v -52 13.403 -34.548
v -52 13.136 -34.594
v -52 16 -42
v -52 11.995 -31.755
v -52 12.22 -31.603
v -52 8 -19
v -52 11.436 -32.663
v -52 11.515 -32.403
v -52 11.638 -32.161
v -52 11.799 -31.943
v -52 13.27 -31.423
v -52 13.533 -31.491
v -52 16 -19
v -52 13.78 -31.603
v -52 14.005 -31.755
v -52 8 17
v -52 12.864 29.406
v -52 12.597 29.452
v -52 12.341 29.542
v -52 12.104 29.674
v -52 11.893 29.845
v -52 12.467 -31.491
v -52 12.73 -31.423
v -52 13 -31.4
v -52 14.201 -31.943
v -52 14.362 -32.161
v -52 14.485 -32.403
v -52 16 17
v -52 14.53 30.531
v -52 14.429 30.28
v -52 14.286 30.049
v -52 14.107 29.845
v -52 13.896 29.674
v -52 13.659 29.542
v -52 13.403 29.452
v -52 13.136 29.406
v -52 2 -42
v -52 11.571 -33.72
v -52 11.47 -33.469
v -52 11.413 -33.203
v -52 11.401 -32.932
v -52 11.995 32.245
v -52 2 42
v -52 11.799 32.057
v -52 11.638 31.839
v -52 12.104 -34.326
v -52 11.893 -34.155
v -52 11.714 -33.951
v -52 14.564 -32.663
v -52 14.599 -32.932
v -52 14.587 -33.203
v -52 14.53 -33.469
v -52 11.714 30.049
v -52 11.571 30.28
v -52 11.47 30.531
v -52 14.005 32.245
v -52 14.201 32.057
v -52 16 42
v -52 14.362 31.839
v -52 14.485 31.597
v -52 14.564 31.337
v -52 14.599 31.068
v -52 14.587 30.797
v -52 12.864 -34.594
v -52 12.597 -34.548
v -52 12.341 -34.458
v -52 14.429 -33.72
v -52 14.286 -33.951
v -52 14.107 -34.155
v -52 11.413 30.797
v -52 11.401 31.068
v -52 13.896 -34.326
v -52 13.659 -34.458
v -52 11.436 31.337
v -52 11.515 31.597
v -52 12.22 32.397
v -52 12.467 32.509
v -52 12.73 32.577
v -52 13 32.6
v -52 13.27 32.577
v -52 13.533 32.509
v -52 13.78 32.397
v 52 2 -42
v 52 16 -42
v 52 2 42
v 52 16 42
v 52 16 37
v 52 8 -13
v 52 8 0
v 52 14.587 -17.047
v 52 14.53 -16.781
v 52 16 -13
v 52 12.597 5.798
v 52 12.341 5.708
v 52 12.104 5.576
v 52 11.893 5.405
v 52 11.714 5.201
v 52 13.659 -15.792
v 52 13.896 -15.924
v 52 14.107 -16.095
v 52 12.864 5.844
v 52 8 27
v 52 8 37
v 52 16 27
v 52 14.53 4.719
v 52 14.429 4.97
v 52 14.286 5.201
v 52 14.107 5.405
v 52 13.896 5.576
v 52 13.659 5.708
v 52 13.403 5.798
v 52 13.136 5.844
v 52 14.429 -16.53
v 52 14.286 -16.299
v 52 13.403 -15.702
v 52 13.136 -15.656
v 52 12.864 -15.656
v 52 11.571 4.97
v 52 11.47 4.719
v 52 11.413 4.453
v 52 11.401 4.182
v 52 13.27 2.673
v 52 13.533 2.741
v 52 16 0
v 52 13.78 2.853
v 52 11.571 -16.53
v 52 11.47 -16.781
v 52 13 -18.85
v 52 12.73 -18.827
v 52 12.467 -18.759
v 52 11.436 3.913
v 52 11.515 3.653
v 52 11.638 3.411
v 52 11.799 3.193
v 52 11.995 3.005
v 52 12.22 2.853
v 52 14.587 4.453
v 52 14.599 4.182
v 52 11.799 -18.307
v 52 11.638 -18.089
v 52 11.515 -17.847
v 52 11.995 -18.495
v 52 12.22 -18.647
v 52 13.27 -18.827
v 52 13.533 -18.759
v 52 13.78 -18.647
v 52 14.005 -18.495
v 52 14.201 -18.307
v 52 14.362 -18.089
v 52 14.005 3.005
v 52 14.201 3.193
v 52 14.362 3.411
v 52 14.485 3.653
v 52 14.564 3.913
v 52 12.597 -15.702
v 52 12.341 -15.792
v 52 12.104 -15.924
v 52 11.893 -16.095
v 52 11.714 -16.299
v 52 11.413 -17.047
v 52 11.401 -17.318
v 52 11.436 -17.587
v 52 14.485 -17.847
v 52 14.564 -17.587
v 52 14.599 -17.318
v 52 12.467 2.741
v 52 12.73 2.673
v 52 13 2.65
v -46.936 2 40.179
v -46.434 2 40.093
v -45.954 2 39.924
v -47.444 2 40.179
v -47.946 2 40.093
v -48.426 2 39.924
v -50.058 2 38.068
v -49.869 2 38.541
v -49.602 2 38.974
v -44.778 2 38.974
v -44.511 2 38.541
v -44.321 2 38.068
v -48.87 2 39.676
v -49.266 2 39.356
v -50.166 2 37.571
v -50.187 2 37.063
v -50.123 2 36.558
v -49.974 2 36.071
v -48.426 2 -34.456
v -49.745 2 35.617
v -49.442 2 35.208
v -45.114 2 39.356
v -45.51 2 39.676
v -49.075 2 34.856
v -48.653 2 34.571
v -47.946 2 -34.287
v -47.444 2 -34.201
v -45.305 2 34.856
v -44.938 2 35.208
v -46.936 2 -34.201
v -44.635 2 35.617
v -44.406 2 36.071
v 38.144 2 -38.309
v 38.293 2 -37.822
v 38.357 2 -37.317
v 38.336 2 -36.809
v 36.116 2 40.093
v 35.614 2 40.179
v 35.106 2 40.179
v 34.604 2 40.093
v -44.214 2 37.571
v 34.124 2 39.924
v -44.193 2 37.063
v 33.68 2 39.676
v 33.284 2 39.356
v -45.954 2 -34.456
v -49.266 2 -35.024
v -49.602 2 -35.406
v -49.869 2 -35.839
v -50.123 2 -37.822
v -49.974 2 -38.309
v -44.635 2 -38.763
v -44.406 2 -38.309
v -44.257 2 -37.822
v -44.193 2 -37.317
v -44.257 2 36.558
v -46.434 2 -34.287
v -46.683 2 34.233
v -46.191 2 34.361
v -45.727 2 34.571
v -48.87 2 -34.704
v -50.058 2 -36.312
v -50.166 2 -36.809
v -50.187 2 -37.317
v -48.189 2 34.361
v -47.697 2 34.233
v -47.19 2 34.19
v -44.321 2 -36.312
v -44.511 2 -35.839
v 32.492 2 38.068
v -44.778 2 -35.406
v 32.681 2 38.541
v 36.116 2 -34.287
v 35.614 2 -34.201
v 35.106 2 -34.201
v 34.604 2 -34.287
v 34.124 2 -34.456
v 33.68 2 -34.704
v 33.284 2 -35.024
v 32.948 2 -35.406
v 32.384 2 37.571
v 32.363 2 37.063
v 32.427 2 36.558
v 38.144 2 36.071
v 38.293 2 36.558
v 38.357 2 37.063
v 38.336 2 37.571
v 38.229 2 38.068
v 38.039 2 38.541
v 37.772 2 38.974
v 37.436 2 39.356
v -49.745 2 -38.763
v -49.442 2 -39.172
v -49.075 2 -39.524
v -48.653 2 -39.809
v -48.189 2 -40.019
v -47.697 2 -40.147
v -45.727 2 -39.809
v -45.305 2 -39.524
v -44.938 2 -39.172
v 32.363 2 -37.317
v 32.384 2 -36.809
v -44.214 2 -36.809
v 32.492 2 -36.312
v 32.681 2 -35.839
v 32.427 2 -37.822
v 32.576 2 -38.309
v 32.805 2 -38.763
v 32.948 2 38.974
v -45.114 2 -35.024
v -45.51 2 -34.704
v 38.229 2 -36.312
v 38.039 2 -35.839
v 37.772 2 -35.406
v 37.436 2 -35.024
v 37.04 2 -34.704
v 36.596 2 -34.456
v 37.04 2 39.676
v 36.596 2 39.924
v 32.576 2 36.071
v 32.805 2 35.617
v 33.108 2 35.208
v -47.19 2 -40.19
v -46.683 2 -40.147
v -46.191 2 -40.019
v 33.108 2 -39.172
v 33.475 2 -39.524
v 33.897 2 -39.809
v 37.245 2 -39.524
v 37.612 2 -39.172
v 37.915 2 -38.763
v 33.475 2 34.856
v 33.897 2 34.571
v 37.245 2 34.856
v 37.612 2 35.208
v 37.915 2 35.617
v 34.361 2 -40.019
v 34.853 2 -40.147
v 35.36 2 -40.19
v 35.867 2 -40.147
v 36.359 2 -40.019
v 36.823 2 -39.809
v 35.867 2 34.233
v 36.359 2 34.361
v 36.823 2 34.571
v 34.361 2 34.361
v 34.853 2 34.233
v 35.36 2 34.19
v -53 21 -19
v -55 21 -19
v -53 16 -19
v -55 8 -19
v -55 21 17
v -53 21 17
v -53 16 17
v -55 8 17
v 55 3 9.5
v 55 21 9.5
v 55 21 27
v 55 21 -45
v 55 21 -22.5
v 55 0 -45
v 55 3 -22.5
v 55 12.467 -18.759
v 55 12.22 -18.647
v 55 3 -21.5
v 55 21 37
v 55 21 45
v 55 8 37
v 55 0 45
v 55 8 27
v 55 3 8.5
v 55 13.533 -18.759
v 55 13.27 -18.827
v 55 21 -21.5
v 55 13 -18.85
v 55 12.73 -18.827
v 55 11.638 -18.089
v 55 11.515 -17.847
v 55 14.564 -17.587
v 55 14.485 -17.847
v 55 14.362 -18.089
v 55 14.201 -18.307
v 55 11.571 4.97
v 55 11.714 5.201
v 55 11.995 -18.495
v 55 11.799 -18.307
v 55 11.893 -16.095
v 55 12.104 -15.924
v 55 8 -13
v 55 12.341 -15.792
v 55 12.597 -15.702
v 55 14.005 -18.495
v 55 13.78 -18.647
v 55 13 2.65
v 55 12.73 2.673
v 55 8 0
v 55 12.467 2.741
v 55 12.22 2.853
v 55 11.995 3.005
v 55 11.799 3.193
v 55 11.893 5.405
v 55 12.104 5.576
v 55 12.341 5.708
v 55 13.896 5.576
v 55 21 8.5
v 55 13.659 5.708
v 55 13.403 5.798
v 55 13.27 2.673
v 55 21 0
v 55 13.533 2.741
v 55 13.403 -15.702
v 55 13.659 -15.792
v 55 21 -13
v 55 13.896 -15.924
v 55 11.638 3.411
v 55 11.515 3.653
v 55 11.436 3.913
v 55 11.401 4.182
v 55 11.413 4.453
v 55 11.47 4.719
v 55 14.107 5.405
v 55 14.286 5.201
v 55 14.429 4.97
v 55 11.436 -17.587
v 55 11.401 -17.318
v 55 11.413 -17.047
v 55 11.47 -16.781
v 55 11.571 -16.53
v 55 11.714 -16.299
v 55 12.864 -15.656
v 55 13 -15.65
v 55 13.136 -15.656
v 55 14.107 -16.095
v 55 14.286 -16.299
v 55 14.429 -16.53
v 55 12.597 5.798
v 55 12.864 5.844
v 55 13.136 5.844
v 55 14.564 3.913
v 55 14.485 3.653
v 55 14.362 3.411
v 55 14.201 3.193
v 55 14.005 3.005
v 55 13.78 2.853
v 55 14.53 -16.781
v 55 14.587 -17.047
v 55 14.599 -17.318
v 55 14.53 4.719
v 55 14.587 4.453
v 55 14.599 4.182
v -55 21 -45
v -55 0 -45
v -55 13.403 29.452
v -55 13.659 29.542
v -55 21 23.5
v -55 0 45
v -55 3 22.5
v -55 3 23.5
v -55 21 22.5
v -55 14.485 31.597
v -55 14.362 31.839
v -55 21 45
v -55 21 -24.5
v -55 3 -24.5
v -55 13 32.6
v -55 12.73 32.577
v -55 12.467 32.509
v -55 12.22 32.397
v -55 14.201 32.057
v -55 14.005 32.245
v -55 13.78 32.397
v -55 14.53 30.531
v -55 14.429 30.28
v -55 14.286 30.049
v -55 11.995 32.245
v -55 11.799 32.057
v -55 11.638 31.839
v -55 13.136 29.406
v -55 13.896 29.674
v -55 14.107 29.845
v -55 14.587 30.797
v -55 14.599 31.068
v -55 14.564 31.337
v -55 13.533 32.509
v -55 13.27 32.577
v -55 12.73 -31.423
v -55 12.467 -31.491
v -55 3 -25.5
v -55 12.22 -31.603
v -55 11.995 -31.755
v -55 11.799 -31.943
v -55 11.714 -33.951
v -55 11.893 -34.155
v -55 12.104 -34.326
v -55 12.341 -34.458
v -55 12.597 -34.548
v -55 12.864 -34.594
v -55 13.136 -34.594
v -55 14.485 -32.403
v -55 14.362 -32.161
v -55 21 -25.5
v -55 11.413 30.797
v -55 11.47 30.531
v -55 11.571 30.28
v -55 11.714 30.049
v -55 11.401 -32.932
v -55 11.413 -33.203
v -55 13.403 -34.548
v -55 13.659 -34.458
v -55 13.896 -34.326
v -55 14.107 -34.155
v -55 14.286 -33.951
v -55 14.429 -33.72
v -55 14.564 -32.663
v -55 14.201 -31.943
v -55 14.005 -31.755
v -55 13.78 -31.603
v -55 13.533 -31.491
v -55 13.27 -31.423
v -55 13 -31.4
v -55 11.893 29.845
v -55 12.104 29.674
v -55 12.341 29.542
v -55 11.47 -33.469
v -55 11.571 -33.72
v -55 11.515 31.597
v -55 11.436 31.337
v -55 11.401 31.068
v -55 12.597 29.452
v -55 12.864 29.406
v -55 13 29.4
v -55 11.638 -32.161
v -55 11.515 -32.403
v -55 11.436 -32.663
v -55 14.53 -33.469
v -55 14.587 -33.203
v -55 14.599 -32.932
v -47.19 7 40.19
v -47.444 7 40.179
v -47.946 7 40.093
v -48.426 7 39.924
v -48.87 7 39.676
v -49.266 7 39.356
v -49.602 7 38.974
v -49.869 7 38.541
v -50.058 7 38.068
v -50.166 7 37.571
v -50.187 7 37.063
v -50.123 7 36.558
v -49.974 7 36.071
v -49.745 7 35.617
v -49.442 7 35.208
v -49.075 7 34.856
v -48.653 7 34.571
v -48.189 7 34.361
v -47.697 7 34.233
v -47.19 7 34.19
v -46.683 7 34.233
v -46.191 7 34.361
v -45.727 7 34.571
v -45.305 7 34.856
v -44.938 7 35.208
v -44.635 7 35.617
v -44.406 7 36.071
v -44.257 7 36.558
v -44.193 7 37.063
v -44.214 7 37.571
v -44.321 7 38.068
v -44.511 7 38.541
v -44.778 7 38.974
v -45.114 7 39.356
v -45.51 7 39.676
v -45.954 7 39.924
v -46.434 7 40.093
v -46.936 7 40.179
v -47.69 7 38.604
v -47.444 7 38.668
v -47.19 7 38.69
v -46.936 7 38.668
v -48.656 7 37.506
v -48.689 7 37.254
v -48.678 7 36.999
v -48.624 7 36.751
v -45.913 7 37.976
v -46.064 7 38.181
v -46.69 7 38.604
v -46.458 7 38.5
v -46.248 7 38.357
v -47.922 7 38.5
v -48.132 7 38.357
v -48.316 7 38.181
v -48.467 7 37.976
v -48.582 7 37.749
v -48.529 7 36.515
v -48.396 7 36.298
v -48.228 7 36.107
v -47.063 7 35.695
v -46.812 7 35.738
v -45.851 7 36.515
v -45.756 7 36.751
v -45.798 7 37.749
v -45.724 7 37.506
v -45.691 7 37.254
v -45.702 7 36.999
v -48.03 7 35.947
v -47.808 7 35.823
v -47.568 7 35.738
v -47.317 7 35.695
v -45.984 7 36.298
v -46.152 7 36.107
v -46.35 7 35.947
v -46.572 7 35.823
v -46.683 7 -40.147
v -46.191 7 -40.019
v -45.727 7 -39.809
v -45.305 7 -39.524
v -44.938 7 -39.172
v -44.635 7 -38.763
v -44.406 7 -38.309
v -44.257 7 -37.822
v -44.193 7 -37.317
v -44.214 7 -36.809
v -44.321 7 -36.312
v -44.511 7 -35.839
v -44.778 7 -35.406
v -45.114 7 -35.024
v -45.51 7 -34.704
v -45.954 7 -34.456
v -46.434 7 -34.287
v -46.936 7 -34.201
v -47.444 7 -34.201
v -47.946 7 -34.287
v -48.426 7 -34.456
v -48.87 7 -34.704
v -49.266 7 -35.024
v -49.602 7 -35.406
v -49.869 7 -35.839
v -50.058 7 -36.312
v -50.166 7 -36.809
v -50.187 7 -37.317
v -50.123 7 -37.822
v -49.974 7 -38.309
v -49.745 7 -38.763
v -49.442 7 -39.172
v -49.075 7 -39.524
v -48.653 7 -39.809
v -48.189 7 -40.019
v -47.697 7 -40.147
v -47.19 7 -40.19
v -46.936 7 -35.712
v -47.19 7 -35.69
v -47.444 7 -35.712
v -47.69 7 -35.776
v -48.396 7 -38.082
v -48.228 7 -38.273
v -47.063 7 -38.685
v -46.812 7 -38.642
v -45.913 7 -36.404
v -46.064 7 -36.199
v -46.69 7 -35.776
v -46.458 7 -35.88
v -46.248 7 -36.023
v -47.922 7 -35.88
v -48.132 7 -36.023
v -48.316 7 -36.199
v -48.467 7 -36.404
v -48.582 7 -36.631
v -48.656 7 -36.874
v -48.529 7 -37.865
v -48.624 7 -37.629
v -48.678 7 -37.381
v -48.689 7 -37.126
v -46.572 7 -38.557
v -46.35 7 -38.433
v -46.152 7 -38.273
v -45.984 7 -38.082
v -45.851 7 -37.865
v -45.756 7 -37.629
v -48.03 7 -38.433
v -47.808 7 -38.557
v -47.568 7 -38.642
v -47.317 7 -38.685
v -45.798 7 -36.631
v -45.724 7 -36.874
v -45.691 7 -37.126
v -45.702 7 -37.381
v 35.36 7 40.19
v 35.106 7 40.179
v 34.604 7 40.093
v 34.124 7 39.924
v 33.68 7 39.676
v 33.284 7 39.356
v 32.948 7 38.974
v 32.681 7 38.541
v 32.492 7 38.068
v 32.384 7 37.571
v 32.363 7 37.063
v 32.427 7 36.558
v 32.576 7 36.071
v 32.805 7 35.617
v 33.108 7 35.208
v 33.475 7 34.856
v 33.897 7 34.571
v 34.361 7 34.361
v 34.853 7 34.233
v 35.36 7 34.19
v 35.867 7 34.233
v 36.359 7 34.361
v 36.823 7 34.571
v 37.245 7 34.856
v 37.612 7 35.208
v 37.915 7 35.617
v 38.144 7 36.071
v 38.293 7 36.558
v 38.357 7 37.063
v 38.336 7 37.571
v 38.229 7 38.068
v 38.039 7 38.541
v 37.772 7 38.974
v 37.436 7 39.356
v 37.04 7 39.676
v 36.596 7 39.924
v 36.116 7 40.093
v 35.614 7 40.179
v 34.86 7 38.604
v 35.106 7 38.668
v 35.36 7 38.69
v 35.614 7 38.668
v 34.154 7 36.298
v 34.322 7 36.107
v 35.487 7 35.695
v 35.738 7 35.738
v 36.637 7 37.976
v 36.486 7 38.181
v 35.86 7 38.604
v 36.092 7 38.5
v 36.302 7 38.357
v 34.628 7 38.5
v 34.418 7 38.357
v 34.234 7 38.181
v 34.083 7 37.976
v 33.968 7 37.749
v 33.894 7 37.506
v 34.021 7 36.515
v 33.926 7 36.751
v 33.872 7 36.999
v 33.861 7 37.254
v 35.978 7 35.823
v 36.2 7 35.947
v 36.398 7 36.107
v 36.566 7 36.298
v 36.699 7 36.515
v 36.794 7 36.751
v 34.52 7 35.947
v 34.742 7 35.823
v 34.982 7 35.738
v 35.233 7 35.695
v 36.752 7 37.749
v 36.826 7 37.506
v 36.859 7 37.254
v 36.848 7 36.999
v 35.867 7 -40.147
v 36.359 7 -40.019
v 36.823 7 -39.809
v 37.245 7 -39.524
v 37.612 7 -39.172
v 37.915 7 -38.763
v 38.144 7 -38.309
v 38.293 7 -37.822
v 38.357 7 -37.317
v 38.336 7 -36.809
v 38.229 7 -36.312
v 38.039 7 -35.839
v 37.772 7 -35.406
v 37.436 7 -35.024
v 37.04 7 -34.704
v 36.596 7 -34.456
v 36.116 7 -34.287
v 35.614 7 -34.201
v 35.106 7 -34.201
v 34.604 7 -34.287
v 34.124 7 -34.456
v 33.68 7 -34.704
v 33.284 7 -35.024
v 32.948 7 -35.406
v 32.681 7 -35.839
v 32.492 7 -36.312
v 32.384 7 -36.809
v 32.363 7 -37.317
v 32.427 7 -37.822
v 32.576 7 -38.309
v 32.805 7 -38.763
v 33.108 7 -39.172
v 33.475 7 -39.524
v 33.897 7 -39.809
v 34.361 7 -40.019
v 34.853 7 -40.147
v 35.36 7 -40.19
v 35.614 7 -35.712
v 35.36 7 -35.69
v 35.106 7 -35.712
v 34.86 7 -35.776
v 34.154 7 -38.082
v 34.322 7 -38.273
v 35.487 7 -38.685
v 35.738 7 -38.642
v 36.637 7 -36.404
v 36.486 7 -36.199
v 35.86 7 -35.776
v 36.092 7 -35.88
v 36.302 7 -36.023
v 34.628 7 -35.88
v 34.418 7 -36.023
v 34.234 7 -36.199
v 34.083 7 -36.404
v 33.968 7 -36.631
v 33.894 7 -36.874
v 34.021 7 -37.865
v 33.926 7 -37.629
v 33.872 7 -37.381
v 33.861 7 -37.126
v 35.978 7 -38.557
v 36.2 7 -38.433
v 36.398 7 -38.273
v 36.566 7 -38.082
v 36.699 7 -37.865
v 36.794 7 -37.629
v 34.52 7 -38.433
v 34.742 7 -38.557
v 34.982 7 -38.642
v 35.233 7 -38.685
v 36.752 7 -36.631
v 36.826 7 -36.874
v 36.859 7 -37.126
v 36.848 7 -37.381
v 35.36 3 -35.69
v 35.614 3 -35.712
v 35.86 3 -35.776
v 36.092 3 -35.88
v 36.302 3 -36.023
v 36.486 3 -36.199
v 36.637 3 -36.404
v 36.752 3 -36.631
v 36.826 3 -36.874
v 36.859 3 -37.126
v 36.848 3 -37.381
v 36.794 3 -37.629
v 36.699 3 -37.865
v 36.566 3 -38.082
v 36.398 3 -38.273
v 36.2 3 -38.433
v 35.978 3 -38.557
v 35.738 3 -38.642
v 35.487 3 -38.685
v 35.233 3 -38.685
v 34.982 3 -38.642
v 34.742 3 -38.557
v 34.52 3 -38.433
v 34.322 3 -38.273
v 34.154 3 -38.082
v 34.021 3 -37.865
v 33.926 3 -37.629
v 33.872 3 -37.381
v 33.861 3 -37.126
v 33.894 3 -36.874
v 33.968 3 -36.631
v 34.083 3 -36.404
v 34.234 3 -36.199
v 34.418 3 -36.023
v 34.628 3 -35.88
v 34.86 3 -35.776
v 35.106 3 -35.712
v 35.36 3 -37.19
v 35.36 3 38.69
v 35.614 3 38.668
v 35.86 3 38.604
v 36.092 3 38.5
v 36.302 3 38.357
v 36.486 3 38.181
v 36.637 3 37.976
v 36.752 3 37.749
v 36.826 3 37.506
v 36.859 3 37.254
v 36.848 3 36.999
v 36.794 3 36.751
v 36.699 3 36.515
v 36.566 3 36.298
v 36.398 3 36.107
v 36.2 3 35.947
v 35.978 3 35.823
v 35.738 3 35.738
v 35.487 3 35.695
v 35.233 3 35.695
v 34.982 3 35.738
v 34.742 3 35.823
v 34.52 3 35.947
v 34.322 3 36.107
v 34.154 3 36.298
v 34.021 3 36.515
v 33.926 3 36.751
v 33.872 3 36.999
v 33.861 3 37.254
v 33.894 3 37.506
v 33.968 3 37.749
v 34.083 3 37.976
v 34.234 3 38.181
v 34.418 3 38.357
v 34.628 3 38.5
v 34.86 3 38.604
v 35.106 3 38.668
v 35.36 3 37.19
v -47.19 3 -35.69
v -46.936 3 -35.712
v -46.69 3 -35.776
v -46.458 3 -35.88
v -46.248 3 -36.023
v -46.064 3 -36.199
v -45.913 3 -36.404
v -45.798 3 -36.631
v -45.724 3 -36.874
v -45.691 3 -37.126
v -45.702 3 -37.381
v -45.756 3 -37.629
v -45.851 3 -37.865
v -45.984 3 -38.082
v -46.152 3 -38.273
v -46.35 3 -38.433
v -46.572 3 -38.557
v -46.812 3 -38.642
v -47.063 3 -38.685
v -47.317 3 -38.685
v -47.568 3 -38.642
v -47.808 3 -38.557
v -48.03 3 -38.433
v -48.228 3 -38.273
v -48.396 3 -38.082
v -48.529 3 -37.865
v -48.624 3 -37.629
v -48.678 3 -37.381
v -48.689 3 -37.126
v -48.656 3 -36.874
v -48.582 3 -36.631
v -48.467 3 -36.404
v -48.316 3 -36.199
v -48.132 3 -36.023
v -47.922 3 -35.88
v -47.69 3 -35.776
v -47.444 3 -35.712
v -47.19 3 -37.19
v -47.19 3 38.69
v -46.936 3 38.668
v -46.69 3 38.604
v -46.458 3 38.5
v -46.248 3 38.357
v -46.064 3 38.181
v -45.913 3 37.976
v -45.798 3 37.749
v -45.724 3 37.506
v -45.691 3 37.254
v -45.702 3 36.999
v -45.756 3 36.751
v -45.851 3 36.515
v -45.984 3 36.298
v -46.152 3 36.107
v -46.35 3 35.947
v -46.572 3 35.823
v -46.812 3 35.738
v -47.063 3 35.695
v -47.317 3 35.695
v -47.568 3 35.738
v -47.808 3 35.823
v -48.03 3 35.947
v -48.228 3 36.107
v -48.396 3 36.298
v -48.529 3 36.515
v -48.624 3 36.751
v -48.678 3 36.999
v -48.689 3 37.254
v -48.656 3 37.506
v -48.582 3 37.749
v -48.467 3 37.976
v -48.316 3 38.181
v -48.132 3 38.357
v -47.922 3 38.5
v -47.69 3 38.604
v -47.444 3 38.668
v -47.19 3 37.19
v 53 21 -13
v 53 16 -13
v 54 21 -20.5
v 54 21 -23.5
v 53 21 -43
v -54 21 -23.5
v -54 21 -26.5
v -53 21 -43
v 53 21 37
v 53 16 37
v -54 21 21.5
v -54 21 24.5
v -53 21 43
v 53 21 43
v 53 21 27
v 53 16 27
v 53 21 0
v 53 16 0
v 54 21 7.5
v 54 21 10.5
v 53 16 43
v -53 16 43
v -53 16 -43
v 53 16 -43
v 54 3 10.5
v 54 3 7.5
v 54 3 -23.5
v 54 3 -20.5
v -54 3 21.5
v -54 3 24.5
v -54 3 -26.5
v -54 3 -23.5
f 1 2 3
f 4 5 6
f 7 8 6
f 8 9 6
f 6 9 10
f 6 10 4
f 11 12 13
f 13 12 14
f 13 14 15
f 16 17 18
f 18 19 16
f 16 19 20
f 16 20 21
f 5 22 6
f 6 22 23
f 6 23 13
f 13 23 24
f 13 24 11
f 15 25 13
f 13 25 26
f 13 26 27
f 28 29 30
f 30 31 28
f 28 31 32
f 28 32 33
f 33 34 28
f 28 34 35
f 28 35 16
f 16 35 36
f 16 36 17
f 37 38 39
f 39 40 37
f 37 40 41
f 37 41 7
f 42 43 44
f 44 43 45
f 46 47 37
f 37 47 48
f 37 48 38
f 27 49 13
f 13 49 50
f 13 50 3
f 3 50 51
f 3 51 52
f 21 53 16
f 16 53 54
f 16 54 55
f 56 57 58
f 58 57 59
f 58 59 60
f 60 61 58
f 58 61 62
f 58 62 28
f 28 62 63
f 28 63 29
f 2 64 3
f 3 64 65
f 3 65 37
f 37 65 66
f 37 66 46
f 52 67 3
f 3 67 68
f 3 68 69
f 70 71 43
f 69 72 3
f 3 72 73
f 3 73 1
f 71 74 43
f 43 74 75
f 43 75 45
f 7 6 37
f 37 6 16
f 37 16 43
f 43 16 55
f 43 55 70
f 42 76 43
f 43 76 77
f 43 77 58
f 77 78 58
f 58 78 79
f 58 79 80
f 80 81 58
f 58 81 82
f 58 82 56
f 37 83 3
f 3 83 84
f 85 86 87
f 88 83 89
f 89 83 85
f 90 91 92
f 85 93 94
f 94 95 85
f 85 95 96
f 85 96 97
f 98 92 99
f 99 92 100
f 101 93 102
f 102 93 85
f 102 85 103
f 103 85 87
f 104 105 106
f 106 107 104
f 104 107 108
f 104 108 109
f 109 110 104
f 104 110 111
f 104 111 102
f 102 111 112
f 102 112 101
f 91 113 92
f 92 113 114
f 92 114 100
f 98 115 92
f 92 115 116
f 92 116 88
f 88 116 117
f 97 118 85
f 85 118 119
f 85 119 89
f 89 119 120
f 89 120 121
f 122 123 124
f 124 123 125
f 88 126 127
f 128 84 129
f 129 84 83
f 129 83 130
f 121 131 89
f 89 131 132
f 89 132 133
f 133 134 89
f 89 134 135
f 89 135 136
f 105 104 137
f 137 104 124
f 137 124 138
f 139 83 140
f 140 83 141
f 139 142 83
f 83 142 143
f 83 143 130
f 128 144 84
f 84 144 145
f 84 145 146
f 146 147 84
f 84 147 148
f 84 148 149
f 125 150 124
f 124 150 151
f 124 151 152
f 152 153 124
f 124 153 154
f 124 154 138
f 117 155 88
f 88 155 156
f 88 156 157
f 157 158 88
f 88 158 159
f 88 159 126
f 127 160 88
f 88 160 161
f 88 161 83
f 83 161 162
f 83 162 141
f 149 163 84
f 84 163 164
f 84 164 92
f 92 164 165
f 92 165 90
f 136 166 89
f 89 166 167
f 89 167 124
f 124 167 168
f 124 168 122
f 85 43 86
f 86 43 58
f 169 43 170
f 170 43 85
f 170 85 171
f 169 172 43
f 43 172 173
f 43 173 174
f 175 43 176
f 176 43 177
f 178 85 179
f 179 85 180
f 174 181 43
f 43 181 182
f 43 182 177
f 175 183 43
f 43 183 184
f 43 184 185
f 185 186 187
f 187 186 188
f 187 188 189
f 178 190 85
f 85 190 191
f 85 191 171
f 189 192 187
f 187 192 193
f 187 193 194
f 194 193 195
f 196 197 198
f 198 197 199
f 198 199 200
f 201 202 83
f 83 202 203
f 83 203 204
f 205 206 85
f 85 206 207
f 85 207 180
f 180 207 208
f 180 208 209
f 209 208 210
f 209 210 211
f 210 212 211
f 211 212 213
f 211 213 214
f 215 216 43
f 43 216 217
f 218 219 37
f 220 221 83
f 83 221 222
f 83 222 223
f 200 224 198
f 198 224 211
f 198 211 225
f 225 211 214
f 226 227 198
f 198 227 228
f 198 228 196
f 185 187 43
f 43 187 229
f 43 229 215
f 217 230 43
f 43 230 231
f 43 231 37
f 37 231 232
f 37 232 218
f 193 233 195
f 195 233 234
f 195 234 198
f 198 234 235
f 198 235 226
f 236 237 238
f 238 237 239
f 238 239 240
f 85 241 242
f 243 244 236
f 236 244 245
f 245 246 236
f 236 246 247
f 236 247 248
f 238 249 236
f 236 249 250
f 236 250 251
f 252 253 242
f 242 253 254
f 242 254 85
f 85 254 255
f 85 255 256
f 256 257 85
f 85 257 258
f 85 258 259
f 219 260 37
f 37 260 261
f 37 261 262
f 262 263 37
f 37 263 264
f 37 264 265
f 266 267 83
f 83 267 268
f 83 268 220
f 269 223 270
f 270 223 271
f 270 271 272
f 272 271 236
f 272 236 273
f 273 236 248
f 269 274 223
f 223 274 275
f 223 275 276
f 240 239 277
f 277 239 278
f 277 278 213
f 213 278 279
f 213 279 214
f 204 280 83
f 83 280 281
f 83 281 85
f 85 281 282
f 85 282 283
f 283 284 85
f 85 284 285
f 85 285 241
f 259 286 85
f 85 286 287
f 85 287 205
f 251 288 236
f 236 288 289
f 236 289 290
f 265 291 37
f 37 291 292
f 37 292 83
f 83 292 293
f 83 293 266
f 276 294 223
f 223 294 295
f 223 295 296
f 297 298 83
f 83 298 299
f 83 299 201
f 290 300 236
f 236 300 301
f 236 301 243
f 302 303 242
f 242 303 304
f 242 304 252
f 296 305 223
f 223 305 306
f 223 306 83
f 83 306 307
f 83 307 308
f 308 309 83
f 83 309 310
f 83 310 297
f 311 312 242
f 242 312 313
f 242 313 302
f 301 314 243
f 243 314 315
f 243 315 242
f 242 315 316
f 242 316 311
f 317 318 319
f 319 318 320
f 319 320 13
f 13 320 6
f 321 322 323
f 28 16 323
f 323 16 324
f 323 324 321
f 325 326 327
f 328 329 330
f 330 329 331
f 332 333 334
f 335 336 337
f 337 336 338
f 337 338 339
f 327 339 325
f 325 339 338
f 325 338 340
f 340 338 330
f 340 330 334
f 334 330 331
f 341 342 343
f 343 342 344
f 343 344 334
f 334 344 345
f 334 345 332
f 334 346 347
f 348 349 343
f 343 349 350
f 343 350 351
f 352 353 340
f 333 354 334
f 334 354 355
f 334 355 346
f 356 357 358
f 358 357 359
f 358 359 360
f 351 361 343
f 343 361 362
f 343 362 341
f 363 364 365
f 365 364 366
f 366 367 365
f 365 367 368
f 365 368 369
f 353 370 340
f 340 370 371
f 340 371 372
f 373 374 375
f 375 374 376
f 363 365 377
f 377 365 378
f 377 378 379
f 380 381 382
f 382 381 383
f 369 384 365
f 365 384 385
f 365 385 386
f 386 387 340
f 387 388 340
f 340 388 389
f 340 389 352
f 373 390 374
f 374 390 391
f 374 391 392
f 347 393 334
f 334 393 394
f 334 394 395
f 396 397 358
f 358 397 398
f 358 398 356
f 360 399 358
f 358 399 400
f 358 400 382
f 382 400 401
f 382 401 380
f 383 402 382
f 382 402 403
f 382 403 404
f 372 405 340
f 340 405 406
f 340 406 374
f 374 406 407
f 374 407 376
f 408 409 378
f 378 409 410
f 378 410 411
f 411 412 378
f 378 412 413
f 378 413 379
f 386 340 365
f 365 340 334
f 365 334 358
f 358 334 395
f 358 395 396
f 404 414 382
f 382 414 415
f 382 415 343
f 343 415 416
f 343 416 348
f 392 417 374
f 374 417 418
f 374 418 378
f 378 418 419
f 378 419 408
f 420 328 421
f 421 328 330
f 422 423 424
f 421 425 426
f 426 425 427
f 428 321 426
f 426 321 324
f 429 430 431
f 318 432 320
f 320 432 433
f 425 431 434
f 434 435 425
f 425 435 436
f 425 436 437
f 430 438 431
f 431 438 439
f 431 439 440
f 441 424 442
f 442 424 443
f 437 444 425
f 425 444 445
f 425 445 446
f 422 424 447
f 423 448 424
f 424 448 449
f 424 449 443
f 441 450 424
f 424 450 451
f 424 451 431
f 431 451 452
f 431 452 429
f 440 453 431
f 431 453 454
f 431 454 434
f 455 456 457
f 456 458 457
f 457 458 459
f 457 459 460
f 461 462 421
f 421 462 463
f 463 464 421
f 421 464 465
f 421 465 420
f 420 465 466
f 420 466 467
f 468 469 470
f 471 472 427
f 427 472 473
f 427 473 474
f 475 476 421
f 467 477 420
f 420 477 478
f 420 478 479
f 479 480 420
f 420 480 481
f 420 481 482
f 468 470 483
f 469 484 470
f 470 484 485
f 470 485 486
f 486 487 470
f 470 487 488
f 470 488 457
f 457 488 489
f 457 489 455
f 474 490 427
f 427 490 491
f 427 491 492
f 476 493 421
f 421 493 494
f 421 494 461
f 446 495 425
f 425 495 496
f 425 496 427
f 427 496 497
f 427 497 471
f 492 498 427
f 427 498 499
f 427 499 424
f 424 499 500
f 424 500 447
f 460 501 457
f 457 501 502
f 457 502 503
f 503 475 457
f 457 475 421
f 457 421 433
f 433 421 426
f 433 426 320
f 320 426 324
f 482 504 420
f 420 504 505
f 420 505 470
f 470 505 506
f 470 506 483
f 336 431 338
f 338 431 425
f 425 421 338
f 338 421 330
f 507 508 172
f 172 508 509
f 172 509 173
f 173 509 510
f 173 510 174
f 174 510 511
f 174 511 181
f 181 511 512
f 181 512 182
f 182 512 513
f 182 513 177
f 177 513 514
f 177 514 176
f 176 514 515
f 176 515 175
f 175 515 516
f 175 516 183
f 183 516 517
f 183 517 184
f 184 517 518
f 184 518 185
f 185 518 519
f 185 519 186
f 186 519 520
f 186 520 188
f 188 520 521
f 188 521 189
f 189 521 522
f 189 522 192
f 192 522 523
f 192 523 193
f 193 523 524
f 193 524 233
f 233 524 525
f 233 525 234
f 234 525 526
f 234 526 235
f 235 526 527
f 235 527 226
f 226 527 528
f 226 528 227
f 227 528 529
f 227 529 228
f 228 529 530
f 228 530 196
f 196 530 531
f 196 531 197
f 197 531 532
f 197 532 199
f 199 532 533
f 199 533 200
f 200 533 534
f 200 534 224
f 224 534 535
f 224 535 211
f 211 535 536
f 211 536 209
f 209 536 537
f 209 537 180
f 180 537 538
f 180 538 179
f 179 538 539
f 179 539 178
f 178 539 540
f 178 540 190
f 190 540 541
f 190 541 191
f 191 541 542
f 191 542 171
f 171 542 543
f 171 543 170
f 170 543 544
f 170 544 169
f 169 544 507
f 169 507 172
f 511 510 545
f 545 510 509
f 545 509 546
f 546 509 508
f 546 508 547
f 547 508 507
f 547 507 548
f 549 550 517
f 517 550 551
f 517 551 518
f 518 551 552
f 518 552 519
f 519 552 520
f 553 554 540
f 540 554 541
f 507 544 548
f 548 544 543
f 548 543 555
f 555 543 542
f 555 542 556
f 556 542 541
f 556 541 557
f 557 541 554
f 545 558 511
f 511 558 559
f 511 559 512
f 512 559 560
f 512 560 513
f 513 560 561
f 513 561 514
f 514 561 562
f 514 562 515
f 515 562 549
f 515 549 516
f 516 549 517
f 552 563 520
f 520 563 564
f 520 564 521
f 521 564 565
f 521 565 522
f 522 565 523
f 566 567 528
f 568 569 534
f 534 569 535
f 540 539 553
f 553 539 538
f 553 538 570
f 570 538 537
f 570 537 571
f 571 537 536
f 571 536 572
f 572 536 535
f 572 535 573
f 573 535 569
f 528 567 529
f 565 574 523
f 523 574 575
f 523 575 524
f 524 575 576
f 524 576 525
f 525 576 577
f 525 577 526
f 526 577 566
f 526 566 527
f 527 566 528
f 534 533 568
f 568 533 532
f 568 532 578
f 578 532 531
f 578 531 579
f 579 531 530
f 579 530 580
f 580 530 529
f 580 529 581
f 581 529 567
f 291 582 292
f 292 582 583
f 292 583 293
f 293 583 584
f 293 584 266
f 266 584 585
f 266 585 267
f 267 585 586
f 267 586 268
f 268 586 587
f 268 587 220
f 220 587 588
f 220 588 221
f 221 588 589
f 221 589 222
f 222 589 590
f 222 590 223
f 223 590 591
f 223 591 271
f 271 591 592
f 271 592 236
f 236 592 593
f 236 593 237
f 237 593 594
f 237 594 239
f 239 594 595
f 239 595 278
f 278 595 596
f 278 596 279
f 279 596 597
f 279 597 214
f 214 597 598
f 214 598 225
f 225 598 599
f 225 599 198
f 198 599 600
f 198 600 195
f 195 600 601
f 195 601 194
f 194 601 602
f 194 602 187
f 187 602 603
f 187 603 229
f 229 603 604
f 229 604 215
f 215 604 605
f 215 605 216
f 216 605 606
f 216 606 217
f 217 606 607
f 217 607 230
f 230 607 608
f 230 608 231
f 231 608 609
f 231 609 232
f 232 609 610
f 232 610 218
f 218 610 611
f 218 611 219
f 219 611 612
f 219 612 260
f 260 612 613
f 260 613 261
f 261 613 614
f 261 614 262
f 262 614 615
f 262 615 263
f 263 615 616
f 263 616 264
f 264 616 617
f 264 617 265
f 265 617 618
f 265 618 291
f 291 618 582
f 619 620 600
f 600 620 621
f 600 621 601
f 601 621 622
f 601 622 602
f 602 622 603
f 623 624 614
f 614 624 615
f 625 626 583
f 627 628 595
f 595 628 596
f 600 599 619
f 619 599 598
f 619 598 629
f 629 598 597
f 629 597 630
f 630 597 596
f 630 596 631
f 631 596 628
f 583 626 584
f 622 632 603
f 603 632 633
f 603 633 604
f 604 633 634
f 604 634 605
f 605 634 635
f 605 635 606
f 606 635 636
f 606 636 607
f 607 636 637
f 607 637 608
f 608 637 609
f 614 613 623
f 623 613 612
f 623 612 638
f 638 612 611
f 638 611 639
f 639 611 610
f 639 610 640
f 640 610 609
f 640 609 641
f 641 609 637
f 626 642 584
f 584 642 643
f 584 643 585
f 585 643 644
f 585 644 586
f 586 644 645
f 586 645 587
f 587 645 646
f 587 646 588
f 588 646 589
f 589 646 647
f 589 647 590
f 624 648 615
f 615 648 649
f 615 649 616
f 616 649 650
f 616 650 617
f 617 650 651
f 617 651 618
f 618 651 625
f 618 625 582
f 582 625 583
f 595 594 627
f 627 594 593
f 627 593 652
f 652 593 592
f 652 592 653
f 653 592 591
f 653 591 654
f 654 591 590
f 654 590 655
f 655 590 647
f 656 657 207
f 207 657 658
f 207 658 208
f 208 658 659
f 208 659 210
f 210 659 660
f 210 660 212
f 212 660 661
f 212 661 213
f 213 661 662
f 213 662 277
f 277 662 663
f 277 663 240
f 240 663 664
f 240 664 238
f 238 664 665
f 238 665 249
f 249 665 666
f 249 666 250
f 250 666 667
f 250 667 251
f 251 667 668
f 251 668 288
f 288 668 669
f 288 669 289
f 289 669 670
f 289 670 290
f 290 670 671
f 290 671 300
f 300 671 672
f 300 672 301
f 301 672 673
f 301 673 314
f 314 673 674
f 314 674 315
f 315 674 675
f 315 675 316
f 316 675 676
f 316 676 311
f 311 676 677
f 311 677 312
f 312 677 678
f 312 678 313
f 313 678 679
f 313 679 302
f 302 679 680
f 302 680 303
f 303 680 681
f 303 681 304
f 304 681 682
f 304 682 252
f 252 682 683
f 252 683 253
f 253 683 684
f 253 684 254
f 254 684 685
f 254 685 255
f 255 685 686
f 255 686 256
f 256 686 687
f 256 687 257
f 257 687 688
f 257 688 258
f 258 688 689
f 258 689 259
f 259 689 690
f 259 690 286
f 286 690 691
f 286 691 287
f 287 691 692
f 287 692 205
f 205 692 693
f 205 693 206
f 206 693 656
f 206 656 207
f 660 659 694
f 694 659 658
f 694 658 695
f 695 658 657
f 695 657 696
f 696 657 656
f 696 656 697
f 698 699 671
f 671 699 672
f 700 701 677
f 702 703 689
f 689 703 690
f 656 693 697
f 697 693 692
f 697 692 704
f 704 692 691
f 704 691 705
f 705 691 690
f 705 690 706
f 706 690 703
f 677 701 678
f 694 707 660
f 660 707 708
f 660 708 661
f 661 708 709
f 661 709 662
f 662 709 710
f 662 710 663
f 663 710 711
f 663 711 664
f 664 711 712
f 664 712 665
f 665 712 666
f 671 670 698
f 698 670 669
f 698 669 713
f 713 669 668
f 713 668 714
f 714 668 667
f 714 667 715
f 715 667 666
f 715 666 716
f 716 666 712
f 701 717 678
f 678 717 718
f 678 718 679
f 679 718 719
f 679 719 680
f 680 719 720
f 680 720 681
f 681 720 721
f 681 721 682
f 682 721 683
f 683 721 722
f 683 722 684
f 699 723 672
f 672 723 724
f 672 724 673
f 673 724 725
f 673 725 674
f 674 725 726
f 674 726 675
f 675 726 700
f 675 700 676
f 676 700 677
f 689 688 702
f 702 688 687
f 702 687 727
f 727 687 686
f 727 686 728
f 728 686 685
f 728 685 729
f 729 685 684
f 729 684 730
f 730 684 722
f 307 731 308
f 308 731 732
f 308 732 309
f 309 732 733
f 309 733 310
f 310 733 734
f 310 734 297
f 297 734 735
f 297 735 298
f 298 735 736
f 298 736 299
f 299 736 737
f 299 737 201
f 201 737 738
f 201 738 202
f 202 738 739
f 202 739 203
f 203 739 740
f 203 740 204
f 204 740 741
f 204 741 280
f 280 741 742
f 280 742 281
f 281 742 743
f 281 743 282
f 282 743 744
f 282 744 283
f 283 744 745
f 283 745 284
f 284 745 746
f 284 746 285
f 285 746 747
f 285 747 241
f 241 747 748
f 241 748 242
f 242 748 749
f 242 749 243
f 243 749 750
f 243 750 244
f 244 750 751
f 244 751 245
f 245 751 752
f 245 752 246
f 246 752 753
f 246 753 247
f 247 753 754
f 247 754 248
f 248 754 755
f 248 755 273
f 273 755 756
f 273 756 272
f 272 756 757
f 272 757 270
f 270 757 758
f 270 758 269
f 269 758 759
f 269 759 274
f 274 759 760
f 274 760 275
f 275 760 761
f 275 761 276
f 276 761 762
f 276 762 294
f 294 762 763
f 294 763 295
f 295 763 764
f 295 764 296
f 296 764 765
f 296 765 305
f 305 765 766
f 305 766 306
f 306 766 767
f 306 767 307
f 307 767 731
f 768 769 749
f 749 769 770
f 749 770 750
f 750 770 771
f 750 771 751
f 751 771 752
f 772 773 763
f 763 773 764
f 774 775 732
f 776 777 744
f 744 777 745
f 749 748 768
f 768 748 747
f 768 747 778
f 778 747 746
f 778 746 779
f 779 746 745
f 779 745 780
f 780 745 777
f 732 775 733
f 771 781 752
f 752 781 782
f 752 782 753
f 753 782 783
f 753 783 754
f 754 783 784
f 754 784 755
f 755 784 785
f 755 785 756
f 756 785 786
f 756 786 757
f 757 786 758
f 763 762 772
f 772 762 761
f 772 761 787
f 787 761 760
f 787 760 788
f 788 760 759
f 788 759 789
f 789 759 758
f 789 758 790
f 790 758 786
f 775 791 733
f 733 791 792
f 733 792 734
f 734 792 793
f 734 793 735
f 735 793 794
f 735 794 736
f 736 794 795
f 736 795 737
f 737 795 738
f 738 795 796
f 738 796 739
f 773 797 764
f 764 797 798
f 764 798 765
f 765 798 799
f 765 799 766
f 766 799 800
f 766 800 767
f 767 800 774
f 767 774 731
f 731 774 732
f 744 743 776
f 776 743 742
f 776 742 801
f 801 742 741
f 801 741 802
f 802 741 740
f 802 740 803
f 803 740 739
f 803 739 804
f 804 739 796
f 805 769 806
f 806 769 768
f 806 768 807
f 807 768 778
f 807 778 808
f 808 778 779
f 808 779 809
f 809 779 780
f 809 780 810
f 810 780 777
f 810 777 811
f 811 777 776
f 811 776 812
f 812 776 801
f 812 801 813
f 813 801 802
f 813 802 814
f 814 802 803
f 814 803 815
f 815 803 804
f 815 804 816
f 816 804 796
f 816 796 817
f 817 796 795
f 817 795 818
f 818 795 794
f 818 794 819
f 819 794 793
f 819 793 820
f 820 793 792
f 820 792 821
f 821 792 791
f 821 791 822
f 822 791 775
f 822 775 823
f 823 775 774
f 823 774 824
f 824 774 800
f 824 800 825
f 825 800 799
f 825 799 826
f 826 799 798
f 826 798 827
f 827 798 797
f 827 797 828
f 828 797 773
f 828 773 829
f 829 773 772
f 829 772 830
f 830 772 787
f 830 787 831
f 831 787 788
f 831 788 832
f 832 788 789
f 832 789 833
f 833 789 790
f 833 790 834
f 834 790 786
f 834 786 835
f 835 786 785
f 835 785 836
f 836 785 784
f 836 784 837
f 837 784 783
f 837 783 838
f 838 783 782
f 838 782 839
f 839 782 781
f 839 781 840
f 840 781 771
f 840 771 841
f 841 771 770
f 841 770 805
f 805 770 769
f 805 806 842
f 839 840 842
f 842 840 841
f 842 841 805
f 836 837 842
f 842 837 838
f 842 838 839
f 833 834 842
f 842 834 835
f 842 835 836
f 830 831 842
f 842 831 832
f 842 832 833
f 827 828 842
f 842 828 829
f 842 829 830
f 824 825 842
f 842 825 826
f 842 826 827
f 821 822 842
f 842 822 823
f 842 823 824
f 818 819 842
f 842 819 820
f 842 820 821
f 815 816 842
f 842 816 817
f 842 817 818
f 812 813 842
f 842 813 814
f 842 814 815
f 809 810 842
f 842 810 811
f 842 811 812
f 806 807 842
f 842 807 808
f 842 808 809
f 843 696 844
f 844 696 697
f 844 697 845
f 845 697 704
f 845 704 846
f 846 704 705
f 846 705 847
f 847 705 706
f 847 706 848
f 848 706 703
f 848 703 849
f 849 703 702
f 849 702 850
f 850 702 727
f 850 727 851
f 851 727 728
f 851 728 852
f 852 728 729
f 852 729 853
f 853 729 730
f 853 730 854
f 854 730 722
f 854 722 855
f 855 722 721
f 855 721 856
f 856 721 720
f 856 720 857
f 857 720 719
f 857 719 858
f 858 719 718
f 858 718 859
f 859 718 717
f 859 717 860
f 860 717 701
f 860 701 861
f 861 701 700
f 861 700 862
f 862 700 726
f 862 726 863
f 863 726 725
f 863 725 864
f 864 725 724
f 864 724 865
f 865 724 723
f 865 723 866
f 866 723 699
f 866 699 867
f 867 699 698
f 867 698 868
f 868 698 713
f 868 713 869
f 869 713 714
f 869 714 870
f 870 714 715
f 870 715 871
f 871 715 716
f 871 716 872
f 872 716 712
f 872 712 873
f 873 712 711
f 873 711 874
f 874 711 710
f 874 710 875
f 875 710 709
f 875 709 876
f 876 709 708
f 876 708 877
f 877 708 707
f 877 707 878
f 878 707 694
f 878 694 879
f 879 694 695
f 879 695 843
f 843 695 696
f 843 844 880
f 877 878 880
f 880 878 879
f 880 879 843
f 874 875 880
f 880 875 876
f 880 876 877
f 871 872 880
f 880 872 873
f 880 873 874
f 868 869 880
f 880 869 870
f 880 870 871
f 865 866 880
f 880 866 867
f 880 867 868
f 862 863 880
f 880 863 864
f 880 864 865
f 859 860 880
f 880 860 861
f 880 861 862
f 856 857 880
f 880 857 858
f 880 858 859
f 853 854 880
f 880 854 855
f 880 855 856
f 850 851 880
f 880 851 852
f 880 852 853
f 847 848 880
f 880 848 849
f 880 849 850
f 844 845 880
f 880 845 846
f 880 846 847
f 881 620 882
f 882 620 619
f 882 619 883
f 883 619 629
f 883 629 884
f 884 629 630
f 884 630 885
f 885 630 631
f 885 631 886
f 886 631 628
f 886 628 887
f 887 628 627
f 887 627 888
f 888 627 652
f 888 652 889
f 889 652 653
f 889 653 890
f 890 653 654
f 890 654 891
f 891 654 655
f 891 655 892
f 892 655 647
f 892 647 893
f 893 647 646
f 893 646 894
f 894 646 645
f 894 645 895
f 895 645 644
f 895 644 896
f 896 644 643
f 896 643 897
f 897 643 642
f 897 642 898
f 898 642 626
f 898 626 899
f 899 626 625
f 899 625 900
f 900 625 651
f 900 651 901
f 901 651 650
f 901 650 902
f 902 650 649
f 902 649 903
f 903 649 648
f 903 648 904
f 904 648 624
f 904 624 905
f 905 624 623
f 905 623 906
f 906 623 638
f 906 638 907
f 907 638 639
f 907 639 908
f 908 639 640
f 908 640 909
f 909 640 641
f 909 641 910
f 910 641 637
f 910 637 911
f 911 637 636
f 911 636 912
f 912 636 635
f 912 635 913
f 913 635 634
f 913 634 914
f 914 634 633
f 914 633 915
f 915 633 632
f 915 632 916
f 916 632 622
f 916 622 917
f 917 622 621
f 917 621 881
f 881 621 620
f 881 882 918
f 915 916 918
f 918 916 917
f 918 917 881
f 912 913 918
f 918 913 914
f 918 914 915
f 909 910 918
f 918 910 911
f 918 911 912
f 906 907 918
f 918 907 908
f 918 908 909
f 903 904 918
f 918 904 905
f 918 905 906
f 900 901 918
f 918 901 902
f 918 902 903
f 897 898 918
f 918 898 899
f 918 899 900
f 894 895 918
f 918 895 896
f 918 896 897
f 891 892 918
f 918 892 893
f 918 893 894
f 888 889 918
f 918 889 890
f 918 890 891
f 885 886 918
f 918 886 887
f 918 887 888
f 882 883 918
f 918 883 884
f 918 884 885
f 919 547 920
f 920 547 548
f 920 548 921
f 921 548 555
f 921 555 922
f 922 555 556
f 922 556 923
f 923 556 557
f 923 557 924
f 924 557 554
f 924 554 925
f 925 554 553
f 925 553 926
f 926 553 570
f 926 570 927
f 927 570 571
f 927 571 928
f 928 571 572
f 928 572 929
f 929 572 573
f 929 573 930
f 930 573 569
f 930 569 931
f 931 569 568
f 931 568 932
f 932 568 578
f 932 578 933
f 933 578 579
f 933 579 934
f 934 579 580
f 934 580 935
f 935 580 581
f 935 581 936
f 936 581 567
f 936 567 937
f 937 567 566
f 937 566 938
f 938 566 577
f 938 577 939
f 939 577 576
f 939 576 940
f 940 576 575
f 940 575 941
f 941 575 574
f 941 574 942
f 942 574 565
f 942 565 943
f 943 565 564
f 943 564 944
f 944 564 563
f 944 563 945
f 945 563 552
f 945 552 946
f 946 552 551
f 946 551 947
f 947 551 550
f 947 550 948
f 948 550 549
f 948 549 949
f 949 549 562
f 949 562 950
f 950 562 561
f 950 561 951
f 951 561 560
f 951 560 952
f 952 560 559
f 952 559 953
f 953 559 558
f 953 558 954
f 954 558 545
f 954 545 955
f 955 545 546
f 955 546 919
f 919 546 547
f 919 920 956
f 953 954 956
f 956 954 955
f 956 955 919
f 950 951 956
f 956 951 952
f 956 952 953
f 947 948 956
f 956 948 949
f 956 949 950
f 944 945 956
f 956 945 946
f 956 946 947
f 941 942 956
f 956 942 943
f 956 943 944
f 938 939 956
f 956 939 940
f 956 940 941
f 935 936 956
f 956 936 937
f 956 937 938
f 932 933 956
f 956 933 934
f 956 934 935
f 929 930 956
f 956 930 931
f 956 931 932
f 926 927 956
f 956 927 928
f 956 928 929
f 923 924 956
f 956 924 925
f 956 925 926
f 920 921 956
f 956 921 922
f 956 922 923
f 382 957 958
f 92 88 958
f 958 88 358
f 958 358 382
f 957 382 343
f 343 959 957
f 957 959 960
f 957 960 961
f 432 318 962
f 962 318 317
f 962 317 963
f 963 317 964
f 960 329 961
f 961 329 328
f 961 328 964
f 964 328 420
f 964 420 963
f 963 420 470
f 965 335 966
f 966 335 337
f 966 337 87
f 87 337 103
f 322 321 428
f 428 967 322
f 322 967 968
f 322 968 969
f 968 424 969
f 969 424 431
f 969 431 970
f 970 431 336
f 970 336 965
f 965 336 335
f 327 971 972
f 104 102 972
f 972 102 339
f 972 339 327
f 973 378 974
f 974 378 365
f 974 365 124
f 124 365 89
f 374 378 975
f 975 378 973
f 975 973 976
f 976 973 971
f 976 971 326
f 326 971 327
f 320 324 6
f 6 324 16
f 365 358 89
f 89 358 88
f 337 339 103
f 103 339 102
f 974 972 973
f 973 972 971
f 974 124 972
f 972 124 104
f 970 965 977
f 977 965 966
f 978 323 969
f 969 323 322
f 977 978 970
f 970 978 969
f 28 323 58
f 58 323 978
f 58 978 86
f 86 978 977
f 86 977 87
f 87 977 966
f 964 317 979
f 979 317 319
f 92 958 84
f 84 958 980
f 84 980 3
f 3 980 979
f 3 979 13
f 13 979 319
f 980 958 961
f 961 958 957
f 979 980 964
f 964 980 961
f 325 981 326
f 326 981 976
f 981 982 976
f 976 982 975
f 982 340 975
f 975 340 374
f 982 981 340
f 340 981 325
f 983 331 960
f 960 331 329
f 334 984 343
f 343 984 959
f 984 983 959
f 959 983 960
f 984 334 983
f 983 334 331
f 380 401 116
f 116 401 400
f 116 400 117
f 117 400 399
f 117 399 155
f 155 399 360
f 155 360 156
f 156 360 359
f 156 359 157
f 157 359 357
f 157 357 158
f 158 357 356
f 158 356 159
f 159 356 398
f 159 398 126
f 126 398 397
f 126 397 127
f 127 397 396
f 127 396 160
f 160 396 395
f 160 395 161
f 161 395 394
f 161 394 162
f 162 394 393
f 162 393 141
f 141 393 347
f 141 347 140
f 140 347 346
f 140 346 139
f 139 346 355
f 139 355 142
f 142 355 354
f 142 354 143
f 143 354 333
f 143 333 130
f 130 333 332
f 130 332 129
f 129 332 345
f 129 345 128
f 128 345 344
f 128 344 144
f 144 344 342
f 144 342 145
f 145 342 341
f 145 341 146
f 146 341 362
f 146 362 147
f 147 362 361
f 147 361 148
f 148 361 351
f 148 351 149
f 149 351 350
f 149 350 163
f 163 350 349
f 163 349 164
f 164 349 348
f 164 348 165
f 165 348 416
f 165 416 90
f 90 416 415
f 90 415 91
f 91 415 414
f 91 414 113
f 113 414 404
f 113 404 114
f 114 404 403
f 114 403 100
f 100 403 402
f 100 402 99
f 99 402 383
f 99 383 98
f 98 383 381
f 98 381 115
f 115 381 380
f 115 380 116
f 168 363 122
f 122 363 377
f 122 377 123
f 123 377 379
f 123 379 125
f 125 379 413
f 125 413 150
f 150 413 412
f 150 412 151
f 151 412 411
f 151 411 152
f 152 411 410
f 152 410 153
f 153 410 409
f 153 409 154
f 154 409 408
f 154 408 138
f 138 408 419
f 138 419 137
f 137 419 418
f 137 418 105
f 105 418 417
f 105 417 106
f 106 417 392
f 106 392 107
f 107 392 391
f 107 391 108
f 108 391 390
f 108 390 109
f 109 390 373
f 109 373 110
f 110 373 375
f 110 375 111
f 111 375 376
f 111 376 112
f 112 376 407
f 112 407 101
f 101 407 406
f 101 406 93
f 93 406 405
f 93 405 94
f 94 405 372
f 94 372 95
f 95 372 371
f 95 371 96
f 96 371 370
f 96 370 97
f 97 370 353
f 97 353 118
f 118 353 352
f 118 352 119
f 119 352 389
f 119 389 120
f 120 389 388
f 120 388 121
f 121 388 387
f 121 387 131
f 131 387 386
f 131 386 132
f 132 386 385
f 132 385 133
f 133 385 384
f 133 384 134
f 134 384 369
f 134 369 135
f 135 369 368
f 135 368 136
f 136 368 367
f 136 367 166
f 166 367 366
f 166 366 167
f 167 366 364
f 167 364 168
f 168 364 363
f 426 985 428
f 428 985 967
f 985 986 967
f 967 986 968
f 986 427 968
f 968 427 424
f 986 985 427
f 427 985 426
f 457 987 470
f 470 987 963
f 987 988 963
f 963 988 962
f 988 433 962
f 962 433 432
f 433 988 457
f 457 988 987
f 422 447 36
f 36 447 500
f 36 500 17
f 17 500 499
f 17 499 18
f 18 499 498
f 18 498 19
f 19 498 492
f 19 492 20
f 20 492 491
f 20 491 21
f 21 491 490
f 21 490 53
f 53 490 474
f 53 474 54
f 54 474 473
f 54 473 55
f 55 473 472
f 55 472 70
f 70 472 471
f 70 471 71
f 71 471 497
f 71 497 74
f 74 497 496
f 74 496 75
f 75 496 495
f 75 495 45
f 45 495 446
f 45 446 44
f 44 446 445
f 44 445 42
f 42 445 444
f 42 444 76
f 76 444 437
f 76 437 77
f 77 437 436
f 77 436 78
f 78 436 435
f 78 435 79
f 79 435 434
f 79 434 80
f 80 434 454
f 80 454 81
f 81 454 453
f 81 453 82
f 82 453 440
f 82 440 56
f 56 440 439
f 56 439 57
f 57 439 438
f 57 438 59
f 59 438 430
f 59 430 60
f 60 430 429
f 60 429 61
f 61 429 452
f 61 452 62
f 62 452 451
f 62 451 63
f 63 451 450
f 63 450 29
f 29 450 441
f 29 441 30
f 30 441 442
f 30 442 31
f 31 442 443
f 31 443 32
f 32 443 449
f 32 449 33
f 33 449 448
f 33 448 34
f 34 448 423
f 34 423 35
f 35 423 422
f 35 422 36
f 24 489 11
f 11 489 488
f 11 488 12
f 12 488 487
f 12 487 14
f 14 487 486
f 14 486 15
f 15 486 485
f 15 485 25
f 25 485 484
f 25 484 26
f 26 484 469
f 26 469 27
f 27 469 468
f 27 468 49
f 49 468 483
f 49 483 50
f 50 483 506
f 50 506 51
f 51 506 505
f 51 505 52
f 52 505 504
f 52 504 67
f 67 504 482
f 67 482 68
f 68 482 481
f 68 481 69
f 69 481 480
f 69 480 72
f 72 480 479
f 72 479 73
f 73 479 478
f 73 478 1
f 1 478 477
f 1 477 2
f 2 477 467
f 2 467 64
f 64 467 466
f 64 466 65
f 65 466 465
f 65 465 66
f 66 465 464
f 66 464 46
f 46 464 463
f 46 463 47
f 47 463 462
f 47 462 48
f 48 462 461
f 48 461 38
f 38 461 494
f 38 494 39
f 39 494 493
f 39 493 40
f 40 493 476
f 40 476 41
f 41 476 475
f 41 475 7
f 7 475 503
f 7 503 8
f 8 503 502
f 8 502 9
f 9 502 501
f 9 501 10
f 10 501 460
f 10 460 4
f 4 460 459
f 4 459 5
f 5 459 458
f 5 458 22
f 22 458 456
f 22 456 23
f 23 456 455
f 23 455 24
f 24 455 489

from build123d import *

# Parameters (mm, degrees)
CROQUIS1_W              = 110
CROQUIS1_H              = 90
SALIENTE_EXTRUIR1_DEPTH = 2
CROQUIS3_R              = 3
SALIENTE_EXTRUIR2_DEPTH = 5
CROQUIS4_R              = 1.5
CORTAR_EXTRUIR1_DEPTH   = 4
CROQUIS5_W              = 3
CROQUIS5_H              = 27
SALIENTE_EXTRUIR3_DEPTH = 19
CROQUIS6_W              = 3
CROQUIS6_H              = 36
CROQUIS6_H_2            = 13
CROQUIS6_H_3            = 10
SALIENTE_EXTRUIR4_DEPTH = 6
CROQUIS7_W              = 106
CROQUIS7_H              = 86
CROQUIS7_W_2            = 104
CROQUIS7_H_2            = 84
CORTAR_EXTRUIR2_DEPTH   = 5
CORTAR_EXTRUIR3_DEPTH   = 18
CROQUIS9_R              = 1.6
CORTAR_EXTRUIR4_DEPTH   = 12
CORTAR_EXTRUIR5_DEPTH   = 18
CROQUIS14_R             = 1.6
CORTAR_EXTRUIR6_DEPTH   = 10


with BuildPart() as part:
    # Croquis1 → Saliente-Extruir1 (new body)
    with BuildSketch(Plane(origin=(0, 0, 0), x_dir=(1, 0, 0), z_dir=(0, 1, 0))):
        Rectangle(CROQUIS1_W, CROQUIS1_H)
    extrude(amount=SALIENTE_EXTRUIR1_DEPTH)

    # Croquis3 → Saliente-Extruir2 (add)
    with BuildSketch(Plane(origin=(0, 2, 0), x_dir=(1, 0, 0), z_dir=(0, 1, 0))):
        with Locations(Location((-47.19, -37.19, 0), (0, 0, 90))):
            Circle(CROQUIS3_R)
        with Locations(Location((-47.19, 37.19, 0), (0, 0, 90))):
            Circle(CROQUIS3_R)
        with Locations(Location((35.36, -37.19, 0), (0, 0, 90))):
            Circle(CROQUIS3_R)
        with Locations(Location((35.36, 37.19, 0), (0, 0, 90))):
            Circle(CROQUIS3_R)
    extrude(amount=SALIENTE_EXTRUIR2_DEPTH)

    # Croquis4 → Cortar-Extruir1 (cut)
    with BuildSketch(Plane(origin=(0, 7, 0), x_dir=(1, 0, 0), z_dir=(0, 1, 0))):
        with Locations(Location((-47.19, -37.19, 0), (0, 0, 270))):
            Circle(CROQUIS4_R)
        with Locations(Location((35.36, -37.19, 0), (0, 0, 270))):
            Circle(CROQUIS4_R)
        with Locations(Location((35.36, 37.19, 0), (0, 0, 270))):
            Circle(CROQUIS4_R)
        with Locations(Location((-47.19, 37.19, 0), (0, 0, 270))):
            Circle(CROQUIS4_R)
    extrude(amount=-CORTAR_EXTRUIR1_DEPTH, mode=Mode.SUBTRACT)

    # Croquis5 → Saliente-Extruir3 (add)
    with BuildSketch(Plane(origin=(0, 2, 0), x_dir=(1, 0, 0), z_dir=(0, 1, 0))):
        Polygon((52, -37), (55, -37), (55, -45), (-55, -45), (-55, -17), (-52, -17), (-52, -42), (52, -42), align=None)
        Polygon((-55, 45), (55, 45), (55, 13), (52, 13), (52, 42), (-52, 42), (-52, 19), (-55, 19), align=None)
        with Locations((53.5, -13.5)):
            Rectangle(CROQUIS5_W, CROQUIS5_H)
    extrude(amount=SALIENTE_EXTRUIR3_DEPTH)

    # Croquis6 → Saliente-Extruir4 (add)
    with BuildSketch(Plane(origin=(0, 2, 0), x_dir=(1, 0, 0), z_dir=(0, 1, 0))):
        with Locations((-53.5, 1)):
            Rectangle(CROQUIS6_W, CROQUIS6_H)
        with Locations((53.5, 6.5)):
            Rectangle(CROQUIS6_W, CROQUIS6_H_2)
        with Locations((53.5, -32)):
            Rectangle(CROQUIS6_W, CROQUIS6_H_3)
    extrude(amount=SALIENTE_EXTRUIR4_DEPTH)

    # Croquis7 → Cortar-Extruir2 (cut)
    with BuildSketch(Plane(origin=(0, 21, 0), x_dir=(1, 0, 0), z_dir=(0, 1, 0))):
        Rectangle(CROQUIS7_W, CROQUIS7_H)
        Rectangle(CROQUIS7_W_2, CROQUIS7_H_2, mode=Mode.SUBTRACT)
    extrude(amount=-CORTAR_EXTRUIR2_DEPTH, mode=Mode.SUBTRACT)

    # Croquis8 → Cortar-Extruir3 (cut)
    with BuildSketch(Plane(origin=(0, 21, 0), x_dir=(1, 0, 0), z_dir=(0, 1, 0))):
        Polygon((55, -8.5), (54, -7.5), (54, -10.5), (55, -9.5), align=None)
        Polygon((55, 22.5), (55, 21.5), (54, 20.5), (54, 23.5), align=None)
    extrude(amount=-CORTAR_EXTRUIR3_DEPTH, mode=Mode.SUBTRACT)

    # Croquis9 → Cortar-Extruir4 (cut)
    with BuildSketch(Plane(origin=(55, 0, 0), x_dir=(0, 0, -1), z_dir=(1, 0, 0))):
        with Locations((-4.25, 13)):
            Circle(CROQUIS9_R)
        with Locations((17.25, 13)):
            Circle(CROQUIS9_R)
    extrude(amount=-CORTAR_EXTRUIR4_DEPTH, mode=Mode.SUBTRACT)

    # Croquis11 → Cortar-Extruir5 (cut)
    with BuildSketch(Plane(origin=(0, 21, 0), x_dir=(1, 0, 0), z_dir=(0, 1, 0))):
        Polygon((-55, -22.5), (-54, -21.5), (-54, -24.5), (-55, -23.5), align=None)
        Polygon((-55, 25.5), (-55, 24.5), (-54, 23.5), (-54, 26.5), align=None)
    extrude(amount=-CORTAR_EXTRUIR5_DEPTH, mode=Mode.SUBTRACT)

    # Croquis14 → Cortar-Extruir6 (cut)
    with BuildSketch(Plane.ZY.offset(55)):
        with Locations((-33, 13)):
            Circle(CROQUIS14_R)
        with Locations((31, 13)):
            Circle(CROQUIS14_R)
    extrude(amount=-CORTAR_EXTRUIR6_DEPTH, mode=Mode.SUBTRACT)


solid = part.part
